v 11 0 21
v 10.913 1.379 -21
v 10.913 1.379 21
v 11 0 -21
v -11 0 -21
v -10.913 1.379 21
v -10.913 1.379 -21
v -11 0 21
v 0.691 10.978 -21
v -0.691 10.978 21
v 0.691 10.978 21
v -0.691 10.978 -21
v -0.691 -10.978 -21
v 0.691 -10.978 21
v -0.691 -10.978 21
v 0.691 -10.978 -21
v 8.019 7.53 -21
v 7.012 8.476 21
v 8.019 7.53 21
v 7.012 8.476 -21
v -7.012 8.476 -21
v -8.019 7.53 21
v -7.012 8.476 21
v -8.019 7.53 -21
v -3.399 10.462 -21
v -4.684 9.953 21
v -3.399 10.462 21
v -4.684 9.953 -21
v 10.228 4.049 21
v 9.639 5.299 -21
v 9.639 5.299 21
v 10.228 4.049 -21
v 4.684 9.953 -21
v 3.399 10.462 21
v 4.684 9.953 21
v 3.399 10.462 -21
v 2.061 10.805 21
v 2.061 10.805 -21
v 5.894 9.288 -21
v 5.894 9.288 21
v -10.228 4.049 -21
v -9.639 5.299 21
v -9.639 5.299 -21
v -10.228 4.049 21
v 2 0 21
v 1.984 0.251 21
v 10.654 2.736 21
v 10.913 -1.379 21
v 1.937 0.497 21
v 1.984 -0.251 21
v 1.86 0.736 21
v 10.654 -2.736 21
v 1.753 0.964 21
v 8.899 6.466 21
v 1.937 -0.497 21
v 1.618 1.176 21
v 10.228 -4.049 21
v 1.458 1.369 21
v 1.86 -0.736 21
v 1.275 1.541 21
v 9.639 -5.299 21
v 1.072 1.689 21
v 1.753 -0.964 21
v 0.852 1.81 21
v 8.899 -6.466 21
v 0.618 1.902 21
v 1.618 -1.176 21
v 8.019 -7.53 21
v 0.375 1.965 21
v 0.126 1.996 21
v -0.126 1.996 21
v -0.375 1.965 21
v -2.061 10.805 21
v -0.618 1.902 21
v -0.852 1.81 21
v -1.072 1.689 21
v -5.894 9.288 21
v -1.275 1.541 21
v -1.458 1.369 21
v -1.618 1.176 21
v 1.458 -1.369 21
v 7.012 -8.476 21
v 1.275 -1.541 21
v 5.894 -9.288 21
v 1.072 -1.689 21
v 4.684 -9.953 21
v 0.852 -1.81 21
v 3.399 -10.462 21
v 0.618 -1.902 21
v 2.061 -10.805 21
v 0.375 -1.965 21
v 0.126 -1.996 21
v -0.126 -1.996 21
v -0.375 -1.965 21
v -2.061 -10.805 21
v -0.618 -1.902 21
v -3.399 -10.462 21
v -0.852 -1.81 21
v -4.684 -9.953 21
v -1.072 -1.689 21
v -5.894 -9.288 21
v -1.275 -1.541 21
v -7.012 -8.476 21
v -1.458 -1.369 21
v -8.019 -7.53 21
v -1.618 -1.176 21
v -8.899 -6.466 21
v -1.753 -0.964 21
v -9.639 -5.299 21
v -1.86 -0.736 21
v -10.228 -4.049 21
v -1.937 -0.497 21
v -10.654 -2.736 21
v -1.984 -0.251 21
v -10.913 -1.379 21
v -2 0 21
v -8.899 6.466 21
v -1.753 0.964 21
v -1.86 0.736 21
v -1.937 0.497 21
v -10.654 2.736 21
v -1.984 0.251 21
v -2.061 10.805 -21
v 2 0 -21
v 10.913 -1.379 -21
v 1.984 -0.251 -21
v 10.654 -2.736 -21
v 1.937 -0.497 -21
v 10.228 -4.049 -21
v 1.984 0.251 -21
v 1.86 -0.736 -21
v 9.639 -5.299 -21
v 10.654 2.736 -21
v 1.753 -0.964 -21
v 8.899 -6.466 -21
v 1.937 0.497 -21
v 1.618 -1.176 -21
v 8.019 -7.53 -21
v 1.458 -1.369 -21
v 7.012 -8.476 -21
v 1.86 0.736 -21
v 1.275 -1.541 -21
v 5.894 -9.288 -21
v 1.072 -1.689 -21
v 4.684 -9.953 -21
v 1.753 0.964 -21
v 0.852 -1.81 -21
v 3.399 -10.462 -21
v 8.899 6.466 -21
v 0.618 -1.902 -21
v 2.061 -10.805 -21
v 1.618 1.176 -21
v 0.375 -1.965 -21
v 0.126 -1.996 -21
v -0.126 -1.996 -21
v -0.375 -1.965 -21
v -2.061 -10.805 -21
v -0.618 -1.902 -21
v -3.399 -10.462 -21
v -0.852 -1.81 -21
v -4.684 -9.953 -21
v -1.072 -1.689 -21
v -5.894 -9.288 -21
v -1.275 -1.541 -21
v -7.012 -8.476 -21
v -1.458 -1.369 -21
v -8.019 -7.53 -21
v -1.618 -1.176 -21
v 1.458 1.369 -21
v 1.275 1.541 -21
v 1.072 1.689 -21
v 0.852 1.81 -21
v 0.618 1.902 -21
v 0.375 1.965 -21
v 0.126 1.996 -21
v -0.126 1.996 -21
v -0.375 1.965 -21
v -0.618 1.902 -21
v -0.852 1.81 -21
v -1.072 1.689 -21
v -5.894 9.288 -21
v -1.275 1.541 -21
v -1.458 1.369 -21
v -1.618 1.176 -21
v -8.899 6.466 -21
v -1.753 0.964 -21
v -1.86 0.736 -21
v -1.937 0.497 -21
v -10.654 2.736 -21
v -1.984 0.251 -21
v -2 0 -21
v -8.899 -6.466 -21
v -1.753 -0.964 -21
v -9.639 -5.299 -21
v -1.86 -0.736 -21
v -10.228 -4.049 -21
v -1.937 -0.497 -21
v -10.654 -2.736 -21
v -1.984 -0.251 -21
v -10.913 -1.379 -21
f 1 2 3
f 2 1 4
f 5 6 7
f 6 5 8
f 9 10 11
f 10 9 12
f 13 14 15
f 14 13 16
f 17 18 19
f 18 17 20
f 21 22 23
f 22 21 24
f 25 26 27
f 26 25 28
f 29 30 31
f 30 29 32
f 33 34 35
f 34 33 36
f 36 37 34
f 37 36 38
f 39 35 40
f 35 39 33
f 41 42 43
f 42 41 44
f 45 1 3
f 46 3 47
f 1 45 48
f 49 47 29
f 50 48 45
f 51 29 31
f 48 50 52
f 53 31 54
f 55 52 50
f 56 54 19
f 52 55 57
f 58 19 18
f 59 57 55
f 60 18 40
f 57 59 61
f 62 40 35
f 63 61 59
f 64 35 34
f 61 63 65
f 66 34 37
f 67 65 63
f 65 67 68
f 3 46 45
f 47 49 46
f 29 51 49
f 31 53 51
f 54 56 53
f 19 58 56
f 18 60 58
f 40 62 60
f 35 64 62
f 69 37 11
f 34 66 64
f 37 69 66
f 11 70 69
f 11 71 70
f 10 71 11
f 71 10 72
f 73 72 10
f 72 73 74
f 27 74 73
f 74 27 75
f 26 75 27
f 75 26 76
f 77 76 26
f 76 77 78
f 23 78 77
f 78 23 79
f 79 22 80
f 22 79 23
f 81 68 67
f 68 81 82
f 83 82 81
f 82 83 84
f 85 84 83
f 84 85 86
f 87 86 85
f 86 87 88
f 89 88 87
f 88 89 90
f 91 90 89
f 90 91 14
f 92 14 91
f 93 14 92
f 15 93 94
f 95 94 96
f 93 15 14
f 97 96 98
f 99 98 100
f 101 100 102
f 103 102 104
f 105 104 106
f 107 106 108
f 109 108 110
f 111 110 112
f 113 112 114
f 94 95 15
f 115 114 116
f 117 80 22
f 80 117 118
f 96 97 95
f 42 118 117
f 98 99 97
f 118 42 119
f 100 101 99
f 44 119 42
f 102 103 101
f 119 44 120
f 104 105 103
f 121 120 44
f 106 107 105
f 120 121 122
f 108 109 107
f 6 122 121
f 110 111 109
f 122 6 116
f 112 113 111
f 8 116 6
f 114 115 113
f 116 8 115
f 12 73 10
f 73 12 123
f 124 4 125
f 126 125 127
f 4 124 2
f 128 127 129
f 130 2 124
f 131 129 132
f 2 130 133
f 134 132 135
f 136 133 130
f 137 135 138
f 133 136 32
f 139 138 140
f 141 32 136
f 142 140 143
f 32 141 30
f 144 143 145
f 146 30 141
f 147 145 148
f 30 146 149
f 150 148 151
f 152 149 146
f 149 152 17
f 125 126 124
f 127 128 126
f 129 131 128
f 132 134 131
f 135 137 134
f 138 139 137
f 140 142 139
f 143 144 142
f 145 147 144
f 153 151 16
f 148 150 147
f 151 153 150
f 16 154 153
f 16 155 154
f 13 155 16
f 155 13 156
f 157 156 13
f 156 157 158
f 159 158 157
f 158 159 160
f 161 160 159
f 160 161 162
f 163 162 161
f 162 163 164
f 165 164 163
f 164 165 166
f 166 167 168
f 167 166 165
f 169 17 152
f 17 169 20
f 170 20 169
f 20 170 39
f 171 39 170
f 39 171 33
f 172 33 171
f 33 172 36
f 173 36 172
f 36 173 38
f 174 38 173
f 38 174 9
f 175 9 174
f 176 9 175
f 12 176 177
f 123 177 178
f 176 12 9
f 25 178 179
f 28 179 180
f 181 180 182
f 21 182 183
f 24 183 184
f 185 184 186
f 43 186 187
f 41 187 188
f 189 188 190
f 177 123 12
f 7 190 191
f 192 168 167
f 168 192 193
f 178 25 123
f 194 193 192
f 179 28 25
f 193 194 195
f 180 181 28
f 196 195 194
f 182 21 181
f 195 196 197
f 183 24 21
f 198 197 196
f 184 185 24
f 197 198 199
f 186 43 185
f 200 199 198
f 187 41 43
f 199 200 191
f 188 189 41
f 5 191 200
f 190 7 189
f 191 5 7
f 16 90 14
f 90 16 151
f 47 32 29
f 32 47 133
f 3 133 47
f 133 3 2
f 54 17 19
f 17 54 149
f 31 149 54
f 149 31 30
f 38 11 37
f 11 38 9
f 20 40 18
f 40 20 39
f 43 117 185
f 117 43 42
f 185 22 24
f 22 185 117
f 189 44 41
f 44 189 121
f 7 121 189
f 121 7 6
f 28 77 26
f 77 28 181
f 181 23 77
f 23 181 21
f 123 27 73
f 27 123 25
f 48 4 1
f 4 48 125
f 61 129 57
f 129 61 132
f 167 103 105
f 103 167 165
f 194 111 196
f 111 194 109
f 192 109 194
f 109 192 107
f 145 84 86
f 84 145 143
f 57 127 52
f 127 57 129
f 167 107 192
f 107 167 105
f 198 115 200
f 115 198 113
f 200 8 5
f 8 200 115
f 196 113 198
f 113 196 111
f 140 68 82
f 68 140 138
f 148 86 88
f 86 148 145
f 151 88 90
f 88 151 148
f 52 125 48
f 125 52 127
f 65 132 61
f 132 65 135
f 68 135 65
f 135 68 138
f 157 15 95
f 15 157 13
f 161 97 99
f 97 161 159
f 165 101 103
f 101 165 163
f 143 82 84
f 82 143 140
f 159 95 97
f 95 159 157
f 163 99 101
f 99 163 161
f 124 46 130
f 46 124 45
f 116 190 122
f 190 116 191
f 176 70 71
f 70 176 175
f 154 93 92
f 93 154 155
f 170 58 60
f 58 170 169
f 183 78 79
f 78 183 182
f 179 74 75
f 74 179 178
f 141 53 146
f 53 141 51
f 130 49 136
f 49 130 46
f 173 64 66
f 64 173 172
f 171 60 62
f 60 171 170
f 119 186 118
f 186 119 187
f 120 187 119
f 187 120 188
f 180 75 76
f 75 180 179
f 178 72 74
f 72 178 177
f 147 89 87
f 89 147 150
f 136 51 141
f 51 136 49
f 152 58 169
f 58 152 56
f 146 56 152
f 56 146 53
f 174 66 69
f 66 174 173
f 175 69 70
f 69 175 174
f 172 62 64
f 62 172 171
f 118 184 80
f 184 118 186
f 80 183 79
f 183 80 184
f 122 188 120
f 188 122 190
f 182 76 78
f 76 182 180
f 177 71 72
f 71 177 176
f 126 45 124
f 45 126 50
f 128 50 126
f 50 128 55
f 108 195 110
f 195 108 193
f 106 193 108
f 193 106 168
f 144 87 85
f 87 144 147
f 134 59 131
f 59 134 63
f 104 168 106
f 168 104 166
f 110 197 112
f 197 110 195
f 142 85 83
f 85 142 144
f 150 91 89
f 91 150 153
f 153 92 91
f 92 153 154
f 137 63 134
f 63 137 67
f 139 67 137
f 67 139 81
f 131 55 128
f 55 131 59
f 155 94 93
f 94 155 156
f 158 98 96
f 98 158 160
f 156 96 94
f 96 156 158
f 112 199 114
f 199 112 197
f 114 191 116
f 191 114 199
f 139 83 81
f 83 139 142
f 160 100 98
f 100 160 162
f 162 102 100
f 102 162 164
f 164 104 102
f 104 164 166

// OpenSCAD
$fn = 50;


difference() {
	union() {
		translate(v = [0, 0, -21.0000000000]) {
			cylinder(h = 42, r = 11.0000000000);
		}
	}
	union() {
		translate(v = [0, 0, -100.0000000000]) {
			cylinder(h = 200, r = 2);
		}
	}
}
